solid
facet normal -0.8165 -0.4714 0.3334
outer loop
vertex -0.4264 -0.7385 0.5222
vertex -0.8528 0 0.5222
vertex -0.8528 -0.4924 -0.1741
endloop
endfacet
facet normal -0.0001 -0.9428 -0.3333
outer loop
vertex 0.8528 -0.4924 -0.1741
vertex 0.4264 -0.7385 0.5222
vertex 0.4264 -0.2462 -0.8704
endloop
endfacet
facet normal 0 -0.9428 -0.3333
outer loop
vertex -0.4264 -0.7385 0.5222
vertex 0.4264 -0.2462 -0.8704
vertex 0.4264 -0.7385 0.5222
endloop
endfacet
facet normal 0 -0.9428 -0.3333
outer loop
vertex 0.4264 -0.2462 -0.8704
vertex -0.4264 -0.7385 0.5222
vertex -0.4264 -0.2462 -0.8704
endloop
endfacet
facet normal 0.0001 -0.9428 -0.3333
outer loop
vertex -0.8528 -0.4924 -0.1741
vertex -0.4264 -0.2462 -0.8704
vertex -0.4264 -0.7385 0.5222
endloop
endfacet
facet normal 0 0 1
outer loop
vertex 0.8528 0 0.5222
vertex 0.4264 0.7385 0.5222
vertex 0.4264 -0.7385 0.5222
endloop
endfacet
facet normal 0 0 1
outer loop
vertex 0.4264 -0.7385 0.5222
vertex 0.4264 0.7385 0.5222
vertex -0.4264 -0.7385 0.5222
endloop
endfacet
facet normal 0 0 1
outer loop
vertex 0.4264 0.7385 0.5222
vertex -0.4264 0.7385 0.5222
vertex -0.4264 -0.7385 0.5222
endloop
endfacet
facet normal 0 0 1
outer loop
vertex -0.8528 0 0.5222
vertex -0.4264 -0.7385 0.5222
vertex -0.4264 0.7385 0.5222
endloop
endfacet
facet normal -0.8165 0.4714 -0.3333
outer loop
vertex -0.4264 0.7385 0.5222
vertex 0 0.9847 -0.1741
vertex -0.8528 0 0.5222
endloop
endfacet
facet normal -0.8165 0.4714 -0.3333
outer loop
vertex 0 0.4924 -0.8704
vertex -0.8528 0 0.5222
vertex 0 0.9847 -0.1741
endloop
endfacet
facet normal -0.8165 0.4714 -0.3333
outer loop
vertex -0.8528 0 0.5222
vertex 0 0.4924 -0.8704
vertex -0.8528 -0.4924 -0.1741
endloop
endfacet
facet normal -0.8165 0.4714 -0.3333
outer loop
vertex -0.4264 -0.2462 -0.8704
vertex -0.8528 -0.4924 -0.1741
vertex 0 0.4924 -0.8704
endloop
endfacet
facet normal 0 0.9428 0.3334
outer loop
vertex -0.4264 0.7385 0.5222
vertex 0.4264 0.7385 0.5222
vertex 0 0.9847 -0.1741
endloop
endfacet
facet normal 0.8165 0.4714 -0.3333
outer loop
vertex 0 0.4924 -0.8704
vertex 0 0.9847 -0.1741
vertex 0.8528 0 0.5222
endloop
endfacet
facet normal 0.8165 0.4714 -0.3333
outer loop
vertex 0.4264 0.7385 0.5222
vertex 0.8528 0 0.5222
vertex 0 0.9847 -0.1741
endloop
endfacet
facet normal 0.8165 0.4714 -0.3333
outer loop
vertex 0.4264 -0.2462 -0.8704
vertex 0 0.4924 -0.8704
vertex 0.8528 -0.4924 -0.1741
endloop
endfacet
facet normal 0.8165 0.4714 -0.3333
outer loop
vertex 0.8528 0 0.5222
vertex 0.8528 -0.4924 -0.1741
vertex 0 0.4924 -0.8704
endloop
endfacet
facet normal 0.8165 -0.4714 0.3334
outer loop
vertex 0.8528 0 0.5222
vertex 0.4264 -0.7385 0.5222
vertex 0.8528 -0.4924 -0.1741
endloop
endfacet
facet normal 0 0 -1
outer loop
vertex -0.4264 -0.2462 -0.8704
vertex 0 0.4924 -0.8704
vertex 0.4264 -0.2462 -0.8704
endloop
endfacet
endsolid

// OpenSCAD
polyhedron( points = [[-0.426401432718421, -0.738548945893078, 0.522232967837057], [-0.852802865425176, 7.72842719272584e-11, 0.522232967837057], [-0.426401432652105, 0.738548945856211, 0.522232967837057], [0.426401432717192, 0.738548945779629, 0.522232967837057], [0.852802865357632, -7.58671943069022e-11, 0.522232967837057], [0.426401432650878, -0.738548945893078, 0.522232967837057], [-0.85280286535886, -0.492365963856161, -0.174077655954376], [7.6755672718703e-11, 0.984731927688924, -0.174077655954376], [0.852802865376052, -0.492365963842689, -0.17407765599248], [-0.42640143272579, -0.246182981839097, -0.870388279689659], [6.57033762092463e-11, 0.492365963825673, -0.870388279709709], [0.42640143263614, -0.246182981827753, -0.870388279721742]], faces = [[0, 1, 6], [0, 6, 9, 11, 8, 5], [0, 5, 4, 3, 2, 1], [1, 2, 7, 10, 9, 6], [2, 3, 7], [3, 4, 8, 11, 10, 7], [4, 5, 8], [9, 10, 11]]);
